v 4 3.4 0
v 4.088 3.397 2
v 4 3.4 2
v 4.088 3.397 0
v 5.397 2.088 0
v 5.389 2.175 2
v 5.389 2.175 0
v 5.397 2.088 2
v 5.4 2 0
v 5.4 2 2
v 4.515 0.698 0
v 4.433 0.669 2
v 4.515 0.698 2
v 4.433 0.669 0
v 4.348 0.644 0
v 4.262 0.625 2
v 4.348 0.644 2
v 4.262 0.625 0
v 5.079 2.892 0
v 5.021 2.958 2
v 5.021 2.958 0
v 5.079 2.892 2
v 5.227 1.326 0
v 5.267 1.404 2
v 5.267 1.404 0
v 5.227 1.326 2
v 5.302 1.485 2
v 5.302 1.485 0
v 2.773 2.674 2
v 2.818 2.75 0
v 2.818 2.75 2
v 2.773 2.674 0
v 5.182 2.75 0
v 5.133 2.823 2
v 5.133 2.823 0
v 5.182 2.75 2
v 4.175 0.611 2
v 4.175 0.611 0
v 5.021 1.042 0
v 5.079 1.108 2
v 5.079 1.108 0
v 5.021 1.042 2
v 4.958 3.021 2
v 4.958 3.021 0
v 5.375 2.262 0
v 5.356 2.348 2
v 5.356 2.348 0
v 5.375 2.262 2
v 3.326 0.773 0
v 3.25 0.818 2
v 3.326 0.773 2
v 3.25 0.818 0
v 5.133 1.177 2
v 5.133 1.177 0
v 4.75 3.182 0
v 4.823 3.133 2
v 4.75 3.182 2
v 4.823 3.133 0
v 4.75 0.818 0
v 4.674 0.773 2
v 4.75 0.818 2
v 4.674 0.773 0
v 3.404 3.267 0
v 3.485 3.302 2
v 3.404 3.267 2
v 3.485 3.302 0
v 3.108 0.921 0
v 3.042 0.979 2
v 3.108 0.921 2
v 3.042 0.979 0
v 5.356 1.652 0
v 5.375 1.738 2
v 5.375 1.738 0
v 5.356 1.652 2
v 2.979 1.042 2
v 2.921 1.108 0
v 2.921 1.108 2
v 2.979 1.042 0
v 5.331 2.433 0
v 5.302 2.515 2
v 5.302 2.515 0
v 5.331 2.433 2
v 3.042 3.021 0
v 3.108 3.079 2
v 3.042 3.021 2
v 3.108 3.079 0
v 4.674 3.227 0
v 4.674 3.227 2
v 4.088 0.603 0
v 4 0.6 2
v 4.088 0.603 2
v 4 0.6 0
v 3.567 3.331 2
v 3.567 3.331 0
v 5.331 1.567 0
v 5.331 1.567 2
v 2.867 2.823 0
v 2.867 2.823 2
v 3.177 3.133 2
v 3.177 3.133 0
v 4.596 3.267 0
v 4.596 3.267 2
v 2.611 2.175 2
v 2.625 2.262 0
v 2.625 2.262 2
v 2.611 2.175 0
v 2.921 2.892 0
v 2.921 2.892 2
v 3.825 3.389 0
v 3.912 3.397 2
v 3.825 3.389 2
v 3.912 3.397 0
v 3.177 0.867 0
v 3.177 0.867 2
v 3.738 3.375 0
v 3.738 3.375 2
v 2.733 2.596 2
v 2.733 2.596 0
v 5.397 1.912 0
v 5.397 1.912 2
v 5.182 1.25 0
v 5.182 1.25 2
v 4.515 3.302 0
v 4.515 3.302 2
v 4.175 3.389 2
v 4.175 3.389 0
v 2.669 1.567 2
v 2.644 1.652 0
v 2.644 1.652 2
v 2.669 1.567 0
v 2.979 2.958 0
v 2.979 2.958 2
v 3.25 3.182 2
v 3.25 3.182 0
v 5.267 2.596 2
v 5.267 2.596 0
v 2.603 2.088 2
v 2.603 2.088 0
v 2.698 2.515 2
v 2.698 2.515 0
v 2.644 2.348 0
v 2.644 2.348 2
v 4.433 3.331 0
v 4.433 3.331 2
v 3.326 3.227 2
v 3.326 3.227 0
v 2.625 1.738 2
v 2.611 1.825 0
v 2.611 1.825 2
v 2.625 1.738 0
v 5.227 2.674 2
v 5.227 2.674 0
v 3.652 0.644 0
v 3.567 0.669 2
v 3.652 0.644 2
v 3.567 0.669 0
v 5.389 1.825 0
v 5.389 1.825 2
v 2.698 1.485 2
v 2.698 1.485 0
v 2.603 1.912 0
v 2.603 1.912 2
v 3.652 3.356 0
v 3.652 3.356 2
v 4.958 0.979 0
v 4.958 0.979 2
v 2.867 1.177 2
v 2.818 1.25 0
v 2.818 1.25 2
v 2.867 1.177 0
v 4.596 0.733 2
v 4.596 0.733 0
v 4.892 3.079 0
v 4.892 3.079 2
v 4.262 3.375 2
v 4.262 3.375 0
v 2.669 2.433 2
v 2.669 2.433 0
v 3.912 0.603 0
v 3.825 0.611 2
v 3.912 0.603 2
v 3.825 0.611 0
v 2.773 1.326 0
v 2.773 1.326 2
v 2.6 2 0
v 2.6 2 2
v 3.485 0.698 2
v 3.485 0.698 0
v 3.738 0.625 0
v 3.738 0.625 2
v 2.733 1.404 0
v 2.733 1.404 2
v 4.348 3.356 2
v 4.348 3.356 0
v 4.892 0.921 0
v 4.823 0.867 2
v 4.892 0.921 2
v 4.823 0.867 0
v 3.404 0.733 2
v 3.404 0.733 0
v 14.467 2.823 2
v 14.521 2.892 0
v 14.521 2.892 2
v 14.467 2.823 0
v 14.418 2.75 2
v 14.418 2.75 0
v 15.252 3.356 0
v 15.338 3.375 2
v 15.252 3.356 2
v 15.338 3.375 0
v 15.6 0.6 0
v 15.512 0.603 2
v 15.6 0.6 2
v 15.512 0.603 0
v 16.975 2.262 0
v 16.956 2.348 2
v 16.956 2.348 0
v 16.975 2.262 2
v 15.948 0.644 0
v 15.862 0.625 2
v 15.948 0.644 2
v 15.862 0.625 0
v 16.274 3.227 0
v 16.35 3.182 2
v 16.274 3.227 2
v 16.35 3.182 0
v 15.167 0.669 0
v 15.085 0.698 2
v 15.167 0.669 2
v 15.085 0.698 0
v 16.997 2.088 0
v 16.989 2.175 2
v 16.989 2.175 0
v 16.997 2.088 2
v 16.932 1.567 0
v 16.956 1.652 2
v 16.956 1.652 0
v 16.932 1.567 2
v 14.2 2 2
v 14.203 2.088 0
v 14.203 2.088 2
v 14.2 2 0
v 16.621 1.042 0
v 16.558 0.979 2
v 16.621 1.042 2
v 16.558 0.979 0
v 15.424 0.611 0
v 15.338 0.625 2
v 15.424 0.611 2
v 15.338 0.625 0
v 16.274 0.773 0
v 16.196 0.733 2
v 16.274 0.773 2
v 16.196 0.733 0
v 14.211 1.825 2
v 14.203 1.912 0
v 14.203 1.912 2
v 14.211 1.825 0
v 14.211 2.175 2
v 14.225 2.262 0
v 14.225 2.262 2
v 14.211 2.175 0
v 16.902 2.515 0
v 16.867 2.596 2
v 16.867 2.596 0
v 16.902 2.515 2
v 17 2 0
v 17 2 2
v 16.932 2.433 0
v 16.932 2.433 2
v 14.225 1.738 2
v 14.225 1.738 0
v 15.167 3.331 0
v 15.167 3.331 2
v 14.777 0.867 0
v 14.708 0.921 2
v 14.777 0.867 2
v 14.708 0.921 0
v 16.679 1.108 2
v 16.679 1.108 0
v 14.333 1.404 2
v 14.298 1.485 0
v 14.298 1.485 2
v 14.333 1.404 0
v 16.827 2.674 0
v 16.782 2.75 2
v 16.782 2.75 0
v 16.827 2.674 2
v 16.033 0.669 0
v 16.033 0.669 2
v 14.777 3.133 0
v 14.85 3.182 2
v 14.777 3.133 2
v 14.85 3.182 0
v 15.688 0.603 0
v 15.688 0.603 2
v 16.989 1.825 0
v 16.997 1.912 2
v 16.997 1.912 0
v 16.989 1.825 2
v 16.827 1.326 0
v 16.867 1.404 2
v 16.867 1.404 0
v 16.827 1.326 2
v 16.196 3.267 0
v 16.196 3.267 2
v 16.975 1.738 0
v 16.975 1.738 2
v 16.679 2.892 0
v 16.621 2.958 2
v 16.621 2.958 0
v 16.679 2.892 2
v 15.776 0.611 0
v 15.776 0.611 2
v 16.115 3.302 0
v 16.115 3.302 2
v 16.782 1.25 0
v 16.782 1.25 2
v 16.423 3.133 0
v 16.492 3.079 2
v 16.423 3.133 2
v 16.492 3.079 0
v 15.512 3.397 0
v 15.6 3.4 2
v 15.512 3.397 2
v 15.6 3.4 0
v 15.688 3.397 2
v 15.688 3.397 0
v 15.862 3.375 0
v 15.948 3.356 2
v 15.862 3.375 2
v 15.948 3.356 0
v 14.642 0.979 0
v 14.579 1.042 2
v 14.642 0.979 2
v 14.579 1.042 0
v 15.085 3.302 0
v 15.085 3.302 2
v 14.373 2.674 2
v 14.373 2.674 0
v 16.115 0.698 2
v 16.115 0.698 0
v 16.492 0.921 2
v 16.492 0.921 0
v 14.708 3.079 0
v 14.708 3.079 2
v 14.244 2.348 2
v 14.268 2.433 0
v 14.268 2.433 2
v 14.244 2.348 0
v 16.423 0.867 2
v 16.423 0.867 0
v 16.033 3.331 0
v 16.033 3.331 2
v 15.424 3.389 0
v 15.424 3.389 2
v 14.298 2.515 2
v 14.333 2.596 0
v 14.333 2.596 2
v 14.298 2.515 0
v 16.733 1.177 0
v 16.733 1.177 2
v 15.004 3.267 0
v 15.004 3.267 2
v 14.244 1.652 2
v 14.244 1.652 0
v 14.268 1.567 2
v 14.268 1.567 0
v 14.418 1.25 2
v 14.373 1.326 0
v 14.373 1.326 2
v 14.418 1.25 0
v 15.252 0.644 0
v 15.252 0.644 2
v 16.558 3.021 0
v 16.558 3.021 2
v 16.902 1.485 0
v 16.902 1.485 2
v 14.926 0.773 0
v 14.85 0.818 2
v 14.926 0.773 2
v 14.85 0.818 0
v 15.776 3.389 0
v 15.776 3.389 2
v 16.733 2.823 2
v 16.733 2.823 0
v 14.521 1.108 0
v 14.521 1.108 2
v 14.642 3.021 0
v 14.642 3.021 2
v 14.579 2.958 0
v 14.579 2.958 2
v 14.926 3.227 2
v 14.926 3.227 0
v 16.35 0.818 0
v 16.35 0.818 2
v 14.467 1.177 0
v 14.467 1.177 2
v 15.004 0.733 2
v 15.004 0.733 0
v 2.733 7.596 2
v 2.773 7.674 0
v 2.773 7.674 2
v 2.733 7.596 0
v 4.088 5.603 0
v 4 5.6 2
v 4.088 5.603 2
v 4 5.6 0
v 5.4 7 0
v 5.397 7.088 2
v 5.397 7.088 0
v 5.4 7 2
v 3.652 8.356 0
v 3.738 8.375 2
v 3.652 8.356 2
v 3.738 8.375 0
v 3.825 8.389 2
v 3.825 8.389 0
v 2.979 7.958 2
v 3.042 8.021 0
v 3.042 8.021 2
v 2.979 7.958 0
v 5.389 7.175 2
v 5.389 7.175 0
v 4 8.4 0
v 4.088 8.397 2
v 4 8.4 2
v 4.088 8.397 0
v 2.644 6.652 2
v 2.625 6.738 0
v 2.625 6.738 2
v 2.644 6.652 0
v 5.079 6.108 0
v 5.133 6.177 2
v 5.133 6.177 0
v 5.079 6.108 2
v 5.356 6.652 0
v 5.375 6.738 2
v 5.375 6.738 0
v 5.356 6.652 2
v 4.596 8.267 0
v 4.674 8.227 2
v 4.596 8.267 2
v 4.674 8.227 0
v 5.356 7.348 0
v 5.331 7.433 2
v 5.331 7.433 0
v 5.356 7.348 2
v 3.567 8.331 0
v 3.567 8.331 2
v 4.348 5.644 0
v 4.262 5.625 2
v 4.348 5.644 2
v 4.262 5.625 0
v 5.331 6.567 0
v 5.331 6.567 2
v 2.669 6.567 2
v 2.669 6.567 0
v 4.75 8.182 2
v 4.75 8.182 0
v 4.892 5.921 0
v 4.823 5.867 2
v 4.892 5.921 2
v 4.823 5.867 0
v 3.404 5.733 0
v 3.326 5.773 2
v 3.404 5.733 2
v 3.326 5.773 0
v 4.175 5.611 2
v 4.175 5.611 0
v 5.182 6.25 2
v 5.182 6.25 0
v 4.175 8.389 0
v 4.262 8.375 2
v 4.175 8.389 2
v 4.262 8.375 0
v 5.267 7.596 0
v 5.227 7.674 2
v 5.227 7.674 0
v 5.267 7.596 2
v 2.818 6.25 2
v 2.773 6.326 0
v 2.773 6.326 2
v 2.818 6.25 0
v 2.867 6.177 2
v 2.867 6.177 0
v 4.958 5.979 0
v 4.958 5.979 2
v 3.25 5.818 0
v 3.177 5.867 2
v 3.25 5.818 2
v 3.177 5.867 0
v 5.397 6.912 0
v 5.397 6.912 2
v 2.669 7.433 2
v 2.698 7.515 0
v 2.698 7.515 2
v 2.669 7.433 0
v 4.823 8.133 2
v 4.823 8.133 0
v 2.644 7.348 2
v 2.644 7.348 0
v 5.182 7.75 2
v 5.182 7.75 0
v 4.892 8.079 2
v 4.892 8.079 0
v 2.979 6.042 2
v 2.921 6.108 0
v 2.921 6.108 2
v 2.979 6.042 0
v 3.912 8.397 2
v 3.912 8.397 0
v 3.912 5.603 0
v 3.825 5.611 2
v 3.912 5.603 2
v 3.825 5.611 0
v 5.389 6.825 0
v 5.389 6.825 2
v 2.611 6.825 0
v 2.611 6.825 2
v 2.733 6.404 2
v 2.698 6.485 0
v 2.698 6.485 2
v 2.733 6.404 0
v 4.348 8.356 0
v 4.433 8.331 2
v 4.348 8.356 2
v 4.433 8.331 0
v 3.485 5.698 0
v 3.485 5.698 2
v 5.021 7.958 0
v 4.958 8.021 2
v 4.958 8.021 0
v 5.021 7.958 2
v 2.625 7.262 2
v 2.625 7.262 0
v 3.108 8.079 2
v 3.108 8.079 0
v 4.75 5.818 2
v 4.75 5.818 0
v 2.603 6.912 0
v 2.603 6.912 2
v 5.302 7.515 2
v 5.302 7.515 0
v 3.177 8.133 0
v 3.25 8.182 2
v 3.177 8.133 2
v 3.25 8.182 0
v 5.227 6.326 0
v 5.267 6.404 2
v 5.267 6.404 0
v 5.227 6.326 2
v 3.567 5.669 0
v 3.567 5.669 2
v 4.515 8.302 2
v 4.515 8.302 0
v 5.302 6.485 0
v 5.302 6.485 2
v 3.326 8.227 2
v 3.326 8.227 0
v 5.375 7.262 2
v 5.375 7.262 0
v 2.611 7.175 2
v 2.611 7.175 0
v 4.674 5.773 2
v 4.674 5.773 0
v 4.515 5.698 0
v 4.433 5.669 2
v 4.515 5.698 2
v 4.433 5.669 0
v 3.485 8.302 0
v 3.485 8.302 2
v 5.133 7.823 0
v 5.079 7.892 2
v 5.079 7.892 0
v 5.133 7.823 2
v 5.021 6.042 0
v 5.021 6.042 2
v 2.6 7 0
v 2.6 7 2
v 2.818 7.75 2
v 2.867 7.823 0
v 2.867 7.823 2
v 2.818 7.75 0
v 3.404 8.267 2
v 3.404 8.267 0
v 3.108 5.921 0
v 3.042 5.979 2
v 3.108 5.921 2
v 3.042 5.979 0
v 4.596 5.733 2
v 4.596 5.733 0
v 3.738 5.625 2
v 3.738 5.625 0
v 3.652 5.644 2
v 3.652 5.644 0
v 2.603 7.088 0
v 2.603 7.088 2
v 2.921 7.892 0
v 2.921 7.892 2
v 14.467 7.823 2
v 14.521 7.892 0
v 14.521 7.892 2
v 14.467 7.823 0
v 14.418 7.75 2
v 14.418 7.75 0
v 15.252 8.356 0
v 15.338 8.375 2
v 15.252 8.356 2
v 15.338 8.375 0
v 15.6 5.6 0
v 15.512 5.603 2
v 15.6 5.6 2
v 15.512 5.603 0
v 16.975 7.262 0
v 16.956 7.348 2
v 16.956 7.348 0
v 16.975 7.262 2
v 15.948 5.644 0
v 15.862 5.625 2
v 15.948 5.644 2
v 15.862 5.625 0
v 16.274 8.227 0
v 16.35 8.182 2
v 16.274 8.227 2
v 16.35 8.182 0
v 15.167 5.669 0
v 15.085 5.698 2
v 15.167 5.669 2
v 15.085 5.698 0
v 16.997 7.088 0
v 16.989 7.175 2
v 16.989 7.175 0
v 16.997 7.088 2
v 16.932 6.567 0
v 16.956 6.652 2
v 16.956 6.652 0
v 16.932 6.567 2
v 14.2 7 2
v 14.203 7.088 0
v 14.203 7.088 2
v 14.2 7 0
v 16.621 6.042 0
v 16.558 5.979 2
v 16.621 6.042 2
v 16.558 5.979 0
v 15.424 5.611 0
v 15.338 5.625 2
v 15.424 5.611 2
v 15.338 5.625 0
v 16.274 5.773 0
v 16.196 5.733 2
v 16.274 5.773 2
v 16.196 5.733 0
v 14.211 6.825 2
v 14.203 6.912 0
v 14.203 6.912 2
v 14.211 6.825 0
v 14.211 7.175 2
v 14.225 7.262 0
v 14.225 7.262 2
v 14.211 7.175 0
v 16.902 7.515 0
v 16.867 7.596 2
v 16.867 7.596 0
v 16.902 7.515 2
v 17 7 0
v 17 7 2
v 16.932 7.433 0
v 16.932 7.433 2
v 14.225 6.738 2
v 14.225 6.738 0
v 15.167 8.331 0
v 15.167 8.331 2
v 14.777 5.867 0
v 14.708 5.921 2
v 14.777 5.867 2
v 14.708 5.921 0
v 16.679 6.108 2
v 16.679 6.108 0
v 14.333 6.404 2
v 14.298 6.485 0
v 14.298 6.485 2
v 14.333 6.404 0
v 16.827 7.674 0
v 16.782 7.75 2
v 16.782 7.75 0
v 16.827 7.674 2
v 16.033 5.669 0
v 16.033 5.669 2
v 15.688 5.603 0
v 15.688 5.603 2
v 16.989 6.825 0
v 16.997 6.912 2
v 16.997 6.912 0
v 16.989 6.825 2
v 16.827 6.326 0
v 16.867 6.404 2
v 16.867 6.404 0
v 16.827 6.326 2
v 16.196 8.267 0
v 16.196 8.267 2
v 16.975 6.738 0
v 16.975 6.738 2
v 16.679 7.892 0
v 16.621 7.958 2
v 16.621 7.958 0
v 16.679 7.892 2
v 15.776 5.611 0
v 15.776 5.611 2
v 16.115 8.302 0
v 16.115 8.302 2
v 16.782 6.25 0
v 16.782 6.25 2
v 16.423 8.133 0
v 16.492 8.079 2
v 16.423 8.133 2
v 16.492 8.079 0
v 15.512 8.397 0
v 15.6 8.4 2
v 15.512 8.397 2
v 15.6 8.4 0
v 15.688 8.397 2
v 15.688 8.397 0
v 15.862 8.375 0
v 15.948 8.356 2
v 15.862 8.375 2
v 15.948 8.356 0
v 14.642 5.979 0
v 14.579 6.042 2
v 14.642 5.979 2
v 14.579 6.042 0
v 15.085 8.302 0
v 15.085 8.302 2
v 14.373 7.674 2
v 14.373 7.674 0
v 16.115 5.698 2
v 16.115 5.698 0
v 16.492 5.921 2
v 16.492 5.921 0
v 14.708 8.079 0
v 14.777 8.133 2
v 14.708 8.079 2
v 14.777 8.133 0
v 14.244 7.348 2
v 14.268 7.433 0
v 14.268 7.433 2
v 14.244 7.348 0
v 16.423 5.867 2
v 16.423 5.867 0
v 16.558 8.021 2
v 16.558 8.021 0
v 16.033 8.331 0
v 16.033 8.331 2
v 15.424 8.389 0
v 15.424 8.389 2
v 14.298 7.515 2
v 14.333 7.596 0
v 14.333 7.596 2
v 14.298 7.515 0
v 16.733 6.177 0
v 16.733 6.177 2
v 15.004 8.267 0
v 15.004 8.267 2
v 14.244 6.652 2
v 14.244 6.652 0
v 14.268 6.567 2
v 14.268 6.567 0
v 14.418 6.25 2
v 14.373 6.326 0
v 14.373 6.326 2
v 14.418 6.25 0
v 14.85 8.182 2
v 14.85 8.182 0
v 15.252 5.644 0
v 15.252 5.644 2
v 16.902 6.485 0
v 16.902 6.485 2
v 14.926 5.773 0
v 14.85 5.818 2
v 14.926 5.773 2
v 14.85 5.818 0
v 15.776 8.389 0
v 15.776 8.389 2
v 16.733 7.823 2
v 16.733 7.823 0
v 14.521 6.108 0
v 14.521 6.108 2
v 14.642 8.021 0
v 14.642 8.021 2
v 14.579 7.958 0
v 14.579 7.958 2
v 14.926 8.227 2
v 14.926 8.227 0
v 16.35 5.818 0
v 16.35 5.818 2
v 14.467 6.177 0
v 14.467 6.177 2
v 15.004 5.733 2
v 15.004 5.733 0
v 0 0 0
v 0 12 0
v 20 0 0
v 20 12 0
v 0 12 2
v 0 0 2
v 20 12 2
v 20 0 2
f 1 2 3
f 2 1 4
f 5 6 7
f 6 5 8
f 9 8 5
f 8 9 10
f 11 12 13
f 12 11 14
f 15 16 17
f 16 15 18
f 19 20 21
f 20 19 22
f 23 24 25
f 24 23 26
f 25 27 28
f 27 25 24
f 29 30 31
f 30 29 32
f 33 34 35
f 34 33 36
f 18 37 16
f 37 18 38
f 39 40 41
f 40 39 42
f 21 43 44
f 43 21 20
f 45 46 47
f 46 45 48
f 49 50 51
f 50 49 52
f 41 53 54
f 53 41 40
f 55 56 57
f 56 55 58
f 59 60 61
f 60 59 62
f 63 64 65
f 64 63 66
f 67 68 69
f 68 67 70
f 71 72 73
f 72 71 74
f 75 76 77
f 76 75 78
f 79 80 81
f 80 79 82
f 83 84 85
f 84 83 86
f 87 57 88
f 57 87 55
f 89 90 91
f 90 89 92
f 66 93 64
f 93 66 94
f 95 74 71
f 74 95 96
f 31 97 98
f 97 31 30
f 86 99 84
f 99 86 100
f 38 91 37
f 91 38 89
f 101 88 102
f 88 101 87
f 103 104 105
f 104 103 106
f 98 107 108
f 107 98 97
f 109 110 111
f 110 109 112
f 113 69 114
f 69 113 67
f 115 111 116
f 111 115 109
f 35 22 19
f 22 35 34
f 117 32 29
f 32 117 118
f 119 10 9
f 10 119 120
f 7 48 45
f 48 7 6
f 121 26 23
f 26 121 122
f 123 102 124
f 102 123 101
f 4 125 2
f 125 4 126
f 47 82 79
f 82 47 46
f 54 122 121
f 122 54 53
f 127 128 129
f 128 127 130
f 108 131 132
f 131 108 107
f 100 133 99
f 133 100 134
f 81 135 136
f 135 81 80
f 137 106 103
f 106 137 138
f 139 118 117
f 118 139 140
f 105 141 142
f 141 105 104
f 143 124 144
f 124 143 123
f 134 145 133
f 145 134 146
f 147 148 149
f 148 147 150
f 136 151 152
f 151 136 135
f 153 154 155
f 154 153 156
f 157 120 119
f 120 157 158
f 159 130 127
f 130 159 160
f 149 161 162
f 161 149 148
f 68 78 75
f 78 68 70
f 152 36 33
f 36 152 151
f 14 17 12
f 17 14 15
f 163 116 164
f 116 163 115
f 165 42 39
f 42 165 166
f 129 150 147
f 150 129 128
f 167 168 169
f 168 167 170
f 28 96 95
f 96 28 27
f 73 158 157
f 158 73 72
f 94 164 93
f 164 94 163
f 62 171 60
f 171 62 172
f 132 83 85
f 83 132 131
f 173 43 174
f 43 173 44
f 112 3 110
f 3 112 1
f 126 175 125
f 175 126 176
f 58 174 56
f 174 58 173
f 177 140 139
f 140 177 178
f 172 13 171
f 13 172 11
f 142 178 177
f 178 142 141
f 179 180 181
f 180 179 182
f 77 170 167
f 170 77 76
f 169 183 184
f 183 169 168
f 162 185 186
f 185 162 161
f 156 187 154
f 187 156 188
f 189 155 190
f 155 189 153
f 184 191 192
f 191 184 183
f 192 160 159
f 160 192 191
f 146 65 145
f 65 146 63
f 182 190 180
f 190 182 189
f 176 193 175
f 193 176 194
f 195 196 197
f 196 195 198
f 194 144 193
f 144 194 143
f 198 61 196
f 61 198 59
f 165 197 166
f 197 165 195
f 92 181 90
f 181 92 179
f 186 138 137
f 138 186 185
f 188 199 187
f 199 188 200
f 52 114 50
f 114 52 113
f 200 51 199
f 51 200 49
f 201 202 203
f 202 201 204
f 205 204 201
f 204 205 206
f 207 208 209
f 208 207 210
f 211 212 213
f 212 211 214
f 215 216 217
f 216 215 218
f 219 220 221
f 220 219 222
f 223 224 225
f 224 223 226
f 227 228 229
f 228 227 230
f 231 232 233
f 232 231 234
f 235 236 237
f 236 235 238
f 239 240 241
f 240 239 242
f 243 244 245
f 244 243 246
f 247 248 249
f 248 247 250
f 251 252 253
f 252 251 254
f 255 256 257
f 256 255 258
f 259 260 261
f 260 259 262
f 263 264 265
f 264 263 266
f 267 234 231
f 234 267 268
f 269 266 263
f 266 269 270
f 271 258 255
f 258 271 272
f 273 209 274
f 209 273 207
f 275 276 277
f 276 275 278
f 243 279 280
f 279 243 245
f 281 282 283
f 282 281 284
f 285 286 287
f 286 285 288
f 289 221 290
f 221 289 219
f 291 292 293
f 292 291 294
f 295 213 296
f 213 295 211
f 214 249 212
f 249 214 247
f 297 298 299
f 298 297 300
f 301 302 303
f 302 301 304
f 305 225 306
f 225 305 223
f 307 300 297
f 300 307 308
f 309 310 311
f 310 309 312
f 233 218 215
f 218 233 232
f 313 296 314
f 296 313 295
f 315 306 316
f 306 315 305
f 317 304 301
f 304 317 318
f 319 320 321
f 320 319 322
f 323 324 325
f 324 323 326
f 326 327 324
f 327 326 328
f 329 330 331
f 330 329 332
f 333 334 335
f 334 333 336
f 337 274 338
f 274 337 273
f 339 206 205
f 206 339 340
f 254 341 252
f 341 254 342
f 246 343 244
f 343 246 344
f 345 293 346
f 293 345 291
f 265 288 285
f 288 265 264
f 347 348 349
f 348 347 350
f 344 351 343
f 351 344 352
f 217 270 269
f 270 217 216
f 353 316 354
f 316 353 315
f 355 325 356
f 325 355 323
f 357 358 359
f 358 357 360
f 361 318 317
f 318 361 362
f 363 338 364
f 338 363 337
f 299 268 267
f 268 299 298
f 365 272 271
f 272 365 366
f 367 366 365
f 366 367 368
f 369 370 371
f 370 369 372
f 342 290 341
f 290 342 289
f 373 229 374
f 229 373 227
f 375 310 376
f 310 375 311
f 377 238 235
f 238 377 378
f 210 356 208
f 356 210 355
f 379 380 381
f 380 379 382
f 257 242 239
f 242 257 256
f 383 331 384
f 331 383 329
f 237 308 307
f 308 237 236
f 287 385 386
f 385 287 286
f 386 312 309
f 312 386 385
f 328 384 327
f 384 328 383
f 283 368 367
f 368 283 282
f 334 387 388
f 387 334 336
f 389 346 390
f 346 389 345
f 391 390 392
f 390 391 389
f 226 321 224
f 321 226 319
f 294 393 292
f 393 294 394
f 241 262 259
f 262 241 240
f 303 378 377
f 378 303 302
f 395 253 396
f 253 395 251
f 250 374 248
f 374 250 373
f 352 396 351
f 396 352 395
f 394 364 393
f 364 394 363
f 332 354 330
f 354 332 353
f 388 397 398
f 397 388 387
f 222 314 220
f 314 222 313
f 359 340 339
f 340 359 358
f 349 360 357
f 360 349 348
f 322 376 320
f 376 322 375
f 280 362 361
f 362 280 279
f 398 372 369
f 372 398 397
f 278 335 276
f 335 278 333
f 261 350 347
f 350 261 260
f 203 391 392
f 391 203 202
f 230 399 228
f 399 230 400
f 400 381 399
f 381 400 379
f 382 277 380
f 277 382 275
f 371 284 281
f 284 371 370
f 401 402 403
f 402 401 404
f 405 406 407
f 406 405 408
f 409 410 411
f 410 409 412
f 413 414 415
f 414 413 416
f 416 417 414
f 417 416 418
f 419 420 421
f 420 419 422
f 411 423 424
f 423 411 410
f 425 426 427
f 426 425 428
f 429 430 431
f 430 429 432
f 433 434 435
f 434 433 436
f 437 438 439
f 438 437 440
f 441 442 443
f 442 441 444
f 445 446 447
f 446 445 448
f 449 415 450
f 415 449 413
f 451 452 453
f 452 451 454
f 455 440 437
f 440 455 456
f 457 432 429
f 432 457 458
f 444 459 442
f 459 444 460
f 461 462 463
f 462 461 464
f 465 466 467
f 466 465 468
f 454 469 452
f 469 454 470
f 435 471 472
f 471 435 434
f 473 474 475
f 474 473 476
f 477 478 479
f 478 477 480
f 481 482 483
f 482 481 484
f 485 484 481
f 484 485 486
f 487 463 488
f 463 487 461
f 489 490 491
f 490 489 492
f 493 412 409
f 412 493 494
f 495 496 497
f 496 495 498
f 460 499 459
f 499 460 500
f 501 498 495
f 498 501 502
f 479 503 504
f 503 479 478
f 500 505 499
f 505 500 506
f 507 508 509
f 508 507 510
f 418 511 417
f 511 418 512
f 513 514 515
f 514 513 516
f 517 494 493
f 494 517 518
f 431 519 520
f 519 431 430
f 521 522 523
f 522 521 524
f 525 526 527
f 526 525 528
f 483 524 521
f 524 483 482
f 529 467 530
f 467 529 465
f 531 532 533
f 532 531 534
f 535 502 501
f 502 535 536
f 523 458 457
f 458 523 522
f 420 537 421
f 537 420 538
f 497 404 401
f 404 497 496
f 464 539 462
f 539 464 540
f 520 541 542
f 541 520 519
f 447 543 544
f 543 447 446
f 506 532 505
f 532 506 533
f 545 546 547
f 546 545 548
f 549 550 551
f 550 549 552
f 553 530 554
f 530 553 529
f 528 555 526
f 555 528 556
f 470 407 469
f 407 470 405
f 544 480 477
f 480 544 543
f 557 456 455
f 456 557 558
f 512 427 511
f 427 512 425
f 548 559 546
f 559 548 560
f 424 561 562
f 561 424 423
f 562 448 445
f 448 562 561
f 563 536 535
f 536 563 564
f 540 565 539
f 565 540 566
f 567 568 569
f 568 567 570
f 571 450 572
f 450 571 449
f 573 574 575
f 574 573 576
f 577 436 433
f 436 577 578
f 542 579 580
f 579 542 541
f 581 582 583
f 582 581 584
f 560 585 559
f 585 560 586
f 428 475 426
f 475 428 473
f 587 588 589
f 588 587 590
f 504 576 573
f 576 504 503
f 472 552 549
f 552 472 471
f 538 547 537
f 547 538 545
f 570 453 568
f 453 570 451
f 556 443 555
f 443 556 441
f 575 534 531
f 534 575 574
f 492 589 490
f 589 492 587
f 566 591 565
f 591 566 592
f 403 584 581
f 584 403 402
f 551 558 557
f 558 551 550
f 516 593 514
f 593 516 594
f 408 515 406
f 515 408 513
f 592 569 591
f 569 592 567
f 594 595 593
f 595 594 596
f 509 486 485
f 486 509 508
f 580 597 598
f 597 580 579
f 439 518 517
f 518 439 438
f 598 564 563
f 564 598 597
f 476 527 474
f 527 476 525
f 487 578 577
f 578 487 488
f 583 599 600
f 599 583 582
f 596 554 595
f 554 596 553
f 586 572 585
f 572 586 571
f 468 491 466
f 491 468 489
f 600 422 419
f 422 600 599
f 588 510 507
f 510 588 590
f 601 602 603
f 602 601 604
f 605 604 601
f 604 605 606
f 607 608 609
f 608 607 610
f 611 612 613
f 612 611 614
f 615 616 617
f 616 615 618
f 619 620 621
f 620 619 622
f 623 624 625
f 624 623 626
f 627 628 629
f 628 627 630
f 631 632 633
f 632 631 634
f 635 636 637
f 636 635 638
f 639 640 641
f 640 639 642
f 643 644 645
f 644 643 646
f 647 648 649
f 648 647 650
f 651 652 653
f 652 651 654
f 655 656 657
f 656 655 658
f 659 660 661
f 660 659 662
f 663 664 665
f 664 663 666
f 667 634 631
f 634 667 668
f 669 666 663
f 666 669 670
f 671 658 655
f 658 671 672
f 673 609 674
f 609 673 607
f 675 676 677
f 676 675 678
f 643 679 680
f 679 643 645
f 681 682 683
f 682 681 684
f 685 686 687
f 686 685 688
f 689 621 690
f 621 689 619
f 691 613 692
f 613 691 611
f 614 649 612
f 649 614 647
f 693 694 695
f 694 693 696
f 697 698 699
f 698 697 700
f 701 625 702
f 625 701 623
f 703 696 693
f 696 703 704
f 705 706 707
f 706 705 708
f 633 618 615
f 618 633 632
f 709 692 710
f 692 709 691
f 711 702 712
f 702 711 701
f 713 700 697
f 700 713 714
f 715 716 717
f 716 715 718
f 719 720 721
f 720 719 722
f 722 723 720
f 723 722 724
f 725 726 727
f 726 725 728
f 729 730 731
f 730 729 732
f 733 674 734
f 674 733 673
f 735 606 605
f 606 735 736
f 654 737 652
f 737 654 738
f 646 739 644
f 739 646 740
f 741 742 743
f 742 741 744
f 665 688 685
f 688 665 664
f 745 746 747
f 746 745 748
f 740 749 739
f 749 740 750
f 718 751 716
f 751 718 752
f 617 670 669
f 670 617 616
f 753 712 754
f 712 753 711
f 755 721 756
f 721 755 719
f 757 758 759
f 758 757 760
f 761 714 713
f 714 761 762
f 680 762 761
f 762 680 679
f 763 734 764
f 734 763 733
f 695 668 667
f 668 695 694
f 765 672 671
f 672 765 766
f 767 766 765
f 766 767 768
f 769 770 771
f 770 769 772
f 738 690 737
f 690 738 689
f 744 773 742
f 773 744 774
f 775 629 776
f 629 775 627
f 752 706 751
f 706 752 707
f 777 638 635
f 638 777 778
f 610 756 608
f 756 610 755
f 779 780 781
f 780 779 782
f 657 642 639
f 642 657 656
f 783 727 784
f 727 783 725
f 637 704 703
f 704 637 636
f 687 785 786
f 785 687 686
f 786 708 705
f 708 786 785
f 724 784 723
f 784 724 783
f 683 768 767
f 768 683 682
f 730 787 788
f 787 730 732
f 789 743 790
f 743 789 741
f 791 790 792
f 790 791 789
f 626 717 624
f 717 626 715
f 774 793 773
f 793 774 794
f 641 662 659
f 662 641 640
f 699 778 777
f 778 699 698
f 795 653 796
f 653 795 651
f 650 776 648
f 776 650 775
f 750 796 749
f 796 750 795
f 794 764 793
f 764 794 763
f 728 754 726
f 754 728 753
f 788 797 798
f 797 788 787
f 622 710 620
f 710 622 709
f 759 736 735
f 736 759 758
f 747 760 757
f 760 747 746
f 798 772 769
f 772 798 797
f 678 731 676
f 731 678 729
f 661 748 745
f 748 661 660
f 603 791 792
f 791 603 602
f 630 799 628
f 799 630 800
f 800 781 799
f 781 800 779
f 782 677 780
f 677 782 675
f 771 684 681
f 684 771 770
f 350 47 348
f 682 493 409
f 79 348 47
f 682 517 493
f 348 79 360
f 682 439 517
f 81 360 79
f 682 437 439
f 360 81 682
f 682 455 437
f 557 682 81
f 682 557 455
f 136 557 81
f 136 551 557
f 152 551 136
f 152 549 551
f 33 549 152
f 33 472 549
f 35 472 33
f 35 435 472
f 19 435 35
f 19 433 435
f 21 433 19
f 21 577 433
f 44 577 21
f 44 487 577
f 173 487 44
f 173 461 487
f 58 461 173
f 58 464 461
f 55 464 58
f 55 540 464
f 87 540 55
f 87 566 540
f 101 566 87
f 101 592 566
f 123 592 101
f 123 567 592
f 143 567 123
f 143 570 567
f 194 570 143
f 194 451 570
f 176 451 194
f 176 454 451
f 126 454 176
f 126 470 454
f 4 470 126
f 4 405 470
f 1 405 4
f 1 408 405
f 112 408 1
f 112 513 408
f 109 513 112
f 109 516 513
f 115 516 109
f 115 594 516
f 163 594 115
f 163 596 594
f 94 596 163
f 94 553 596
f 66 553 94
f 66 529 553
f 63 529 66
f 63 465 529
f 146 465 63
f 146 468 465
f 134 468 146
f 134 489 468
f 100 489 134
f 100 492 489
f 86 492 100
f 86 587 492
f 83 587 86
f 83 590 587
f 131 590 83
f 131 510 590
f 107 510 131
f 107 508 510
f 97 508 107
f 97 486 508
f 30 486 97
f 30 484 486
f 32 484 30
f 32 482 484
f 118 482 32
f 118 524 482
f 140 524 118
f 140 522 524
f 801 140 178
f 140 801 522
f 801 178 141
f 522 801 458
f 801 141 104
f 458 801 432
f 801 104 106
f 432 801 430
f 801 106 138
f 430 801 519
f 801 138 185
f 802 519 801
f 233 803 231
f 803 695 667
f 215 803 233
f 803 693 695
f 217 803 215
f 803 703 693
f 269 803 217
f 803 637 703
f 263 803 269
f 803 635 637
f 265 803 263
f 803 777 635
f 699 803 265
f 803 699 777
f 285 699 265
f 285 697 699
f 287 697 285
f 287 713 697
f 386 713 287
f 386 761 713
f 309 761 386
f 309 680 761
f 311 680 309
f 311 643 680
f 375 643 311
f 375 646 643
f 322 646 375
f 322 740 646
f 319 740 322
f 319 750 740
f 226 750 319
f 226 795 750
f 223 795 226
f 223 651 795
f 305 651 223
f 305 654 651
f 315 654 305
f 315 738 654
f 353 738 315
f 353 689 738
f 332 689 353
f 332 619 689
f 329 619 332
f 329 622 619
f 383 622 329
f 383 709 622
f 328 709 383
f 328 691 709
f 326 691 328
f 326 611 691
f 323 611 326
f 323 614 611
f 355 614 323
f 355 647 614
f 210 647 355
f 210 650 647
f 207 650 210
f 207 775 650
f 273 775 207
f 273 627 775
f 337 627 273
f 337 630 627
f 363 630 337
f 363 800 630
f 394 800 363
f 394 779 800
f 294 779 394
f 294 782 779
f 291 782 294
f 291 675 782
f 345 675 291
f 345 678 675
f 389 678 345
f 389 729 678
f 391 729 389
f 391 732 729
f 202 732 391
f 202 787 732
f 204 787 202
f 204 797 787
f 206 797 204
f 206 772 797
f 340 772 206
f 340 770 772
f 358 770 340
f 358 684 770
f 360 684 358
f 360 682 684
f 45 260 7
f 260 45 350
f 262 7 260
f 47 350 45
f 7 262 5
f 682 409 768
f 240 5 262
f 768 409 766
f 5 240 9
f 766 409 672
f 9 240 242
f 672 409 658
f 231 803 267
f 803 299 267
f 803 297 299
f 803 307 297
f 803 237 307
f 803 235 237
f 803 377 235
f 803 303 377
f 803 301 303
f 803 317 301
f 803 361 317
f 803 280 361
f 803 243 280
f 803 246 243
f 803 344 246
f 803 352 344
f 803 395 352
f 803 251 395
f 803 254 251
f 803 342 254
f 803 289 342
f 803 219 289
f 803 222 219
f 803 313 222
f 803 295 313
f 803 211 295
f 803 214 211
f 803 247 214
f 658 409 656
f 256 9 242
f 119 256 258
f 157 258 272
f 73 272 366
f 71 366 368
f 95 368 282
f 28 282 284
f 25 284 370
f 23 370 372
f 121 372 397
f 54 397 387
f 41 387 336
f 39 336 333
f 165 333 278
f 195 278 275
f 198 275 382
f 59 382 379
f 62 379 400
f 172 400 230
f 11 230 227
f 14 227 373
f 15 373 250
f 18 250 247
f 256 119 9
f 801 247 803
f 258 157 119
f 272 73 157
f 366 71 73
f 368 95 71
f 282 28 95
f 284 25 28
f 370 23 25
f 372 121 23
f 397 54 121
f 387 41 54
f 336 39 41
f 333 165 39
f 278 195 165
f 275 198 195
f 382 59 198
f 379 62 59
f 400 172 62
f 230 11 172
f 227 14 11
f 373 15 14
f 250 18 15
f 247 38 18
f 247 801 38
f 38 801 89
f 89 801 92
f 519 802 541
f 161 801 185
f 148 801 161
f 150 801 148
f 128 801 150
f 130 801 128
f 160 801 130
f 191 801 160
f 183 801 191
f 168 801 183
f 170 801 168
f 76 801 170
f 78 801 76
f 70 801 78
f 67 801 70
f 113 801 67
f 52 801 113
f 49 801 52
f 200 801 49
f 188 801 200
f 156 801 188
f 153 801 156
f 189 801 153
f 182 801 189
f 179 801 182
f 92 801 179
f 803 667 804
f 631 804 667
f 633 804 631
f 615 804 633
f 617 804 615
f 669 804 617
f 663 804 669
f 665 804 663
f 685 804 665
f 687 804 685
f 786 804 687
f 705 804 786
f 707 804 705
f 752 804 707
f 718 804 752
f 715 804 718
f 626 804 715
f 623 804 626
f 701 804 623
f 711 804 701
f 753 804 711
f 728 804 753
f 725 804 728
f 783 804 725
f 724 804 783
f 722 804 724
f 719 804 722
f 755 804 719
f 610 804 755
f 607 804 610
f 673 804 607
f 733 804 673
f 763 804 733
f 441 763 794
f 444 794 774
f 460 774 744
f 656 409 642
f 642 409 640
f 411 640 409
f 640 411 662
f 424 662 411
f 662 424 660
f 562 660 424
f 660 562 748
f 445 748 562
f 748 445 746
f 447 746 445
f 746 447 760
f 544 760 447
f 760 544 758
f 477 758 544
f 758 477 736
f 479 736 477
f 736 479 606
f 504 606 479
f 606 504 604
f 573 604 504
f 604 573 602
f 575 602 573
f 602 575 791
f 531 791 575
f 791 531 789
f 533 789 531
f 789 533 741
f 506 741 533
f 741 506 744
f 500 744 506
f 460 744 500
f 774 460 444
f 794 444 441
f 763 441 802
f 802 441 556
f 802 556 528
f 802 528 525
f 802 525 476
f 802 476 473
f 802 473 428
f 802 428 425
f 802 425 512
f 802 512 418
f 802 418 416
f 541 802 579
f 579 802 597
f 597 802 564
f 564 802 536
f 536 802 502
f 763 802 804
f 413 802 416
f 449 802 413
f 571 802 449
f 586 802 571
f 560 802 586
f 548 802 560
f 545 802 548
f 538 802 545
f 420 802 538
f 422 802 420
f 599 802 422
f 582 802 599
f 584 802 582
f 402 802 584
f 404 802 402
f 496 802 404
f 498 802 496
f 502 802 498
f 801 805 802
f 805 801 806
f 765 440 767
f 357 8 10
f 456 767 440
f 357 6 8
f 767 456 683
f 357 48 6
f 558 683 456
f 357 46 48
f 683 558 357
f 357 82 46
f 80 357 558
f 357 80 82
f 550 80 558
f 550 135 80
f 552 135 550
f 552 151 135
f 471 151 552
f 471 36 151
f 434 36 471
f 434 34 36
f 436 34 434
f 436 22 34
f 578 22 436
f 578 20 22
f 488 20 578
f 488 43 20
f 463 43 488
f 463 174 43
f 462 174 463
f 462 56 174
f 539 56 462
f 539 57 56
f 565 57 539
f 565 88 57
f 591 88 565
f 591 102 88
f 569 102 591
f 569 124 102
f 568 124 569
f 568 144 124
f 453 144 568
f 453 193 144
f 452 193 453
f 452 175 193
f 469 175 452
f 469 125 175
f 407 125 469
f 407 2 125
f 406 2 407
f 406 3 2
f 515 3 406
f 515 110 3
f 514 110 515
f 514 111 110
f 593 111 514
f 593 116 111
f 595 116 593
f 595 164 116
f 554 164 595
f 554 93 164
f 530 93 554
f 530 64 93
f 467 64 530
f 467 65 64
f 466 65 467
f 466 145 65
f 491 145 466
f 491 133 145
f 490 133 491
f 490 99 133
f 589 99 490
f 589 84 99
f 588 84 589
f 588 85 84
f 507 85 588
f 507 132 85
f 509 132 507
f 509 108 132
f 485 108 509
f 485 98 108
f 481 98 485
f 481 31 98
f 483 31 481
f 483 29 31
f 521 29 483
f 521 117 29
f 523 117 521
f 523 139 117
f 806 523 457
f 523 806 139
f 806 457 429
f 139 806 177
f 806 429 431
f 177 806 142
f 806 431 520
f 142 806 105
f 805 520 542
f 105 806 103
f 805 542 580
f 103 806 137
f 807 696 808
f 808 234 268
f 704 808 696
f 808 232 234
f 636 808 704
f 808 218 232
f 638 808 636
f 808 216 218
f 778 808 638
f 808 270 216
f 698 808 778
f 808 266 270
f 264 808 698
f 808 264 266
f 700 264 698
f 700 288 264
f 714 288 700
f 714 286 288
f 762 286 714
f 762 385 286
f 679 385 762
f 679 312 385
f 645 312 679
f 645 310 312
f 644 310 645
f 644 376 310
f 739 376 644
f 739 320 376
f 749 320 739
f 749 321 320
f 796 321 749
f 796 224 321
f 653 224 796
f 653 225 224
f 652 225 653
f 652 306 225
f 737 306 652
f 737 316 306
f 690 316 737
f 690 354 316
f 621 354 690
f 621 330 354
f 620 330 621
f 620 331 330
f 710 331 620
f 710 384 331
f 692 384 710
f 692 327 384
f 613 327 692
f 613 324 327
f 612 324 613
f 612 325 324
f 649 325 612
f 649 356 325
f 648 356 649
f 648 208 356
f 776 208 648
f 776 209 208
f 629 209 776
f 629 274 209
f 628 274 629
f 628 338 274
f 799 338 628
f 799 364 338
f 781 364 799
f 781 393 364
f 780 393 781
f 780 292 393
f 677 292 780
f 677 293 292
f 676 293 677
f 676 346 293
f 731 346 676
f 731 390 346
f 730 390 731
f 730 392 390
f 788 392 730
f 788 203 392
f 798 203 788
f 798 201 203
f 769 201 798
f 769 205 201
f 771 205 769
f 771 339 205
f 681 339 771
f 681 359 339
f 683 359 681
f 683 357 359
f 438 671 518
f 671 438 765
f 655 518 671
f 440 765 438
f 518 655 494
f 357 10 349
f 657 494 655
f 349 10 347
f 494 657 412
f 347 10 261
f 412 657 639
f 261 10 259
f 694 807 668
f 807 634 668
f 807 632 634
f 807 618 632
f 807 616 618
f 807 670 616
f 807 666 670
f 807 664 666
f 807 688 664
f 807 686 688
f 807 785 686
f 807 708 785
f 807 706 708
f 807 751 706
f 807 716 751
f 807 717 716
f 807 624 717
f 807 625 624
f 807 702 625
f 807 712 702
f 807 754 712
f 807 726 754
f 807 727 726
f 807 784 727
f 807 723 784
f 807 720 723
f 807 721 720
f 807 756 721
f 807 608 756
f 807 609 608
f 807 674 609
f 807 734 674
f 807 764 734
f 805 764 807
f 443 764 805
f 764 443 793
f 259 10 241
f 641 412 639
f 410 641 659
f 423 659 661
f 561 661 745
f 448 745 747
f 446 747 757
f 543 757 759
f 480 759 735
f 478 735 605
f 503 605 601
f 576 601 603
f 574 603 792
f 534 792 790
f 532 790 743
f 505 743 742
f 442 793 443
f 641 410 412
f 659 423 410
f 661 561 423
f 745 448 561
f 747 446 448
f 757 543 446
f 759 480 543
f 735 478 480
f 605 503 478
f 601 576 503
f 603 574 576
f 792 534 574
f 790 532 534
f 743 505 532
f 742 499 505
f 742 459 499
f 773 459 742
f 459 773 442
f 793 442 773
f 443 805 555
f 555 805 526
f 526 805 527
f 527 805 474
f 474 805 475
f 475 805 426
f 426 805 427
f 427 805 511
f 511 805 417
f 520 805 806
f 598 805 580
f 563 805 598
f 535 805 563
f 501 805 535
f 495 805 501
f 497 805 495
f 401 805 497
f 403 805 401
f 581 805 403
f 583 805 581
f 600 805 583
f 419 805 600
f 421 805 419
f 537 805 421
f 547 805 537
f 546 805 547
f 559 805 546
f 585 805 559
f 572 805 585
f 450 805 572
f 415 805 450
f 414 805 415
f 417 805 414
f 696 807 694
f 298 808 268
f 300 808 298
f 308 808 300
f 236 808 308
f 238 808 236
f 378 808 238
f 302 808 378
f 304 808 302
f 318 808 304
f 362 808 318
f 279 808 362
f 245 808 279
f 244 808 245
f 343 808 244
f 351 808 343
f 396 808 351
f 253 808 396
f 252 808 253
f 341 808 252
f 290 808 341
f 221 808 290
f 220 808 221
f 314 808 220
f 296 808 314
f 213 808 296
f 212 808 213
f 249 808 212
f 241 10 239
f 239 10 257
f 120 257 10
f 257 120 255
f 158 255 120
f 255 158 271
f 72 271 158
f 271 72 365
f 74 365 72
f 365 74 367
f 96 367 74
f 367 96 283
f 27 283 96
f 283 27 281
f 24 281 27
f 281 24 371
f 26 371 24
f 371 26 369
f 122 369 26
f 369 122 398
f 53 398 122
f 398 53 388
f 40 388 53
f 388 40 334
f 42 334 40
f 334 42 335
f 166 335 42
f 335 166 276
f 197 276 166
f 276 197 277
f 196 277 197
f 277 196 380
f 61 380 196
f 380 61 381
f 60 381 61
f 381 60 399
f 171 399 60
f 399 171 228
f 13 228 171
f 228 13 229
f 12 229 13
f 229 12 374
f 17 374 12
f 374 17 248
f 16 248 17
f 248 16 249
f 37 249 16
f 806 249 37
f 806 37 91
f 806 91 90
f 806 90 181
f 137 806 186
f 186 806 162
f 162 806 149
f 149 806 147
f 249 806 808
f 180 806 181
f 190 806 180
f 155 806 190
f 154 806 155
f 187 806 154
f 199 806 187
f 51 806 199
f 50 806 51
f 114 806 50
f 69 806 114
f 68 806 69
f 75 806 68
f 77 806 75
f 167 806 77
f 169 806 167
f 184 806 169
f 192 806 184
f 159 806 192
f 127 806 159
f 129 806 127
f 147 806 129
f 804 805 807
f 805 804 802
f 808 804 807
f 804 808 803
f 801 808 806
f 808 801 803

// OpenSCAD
// Ender 2 Pro X-Axis Mounting Carriage Plate
// High quality settings
$fn = 100;

// include <Chamfer.scad>;

// Variables
thickness = 2.00;
plate_height = 12.00;
plate_width = 20.00;
m3_hole_diameter = 2.8;
m3_hole_height = 10;
standoff_diameter = 4.15;

module main_mounting_plate() {
  // Base plate
  translate([0, 0, 0])
  linear_extrude(height = thickness)
  //chamferCube([plate_width, plate_height, thickness], 2);
  hull() {
    square([plate_width, plate_height]);
  }
}

module m3_stand_off_holes() {
  translate([4.00, plate_height - 10.00, -5.5]) {
    cylinder(d = m3_hole_diameter, h = m3_hole_height);
    translate([11.60, 0, 0]) {
      cylinder(d = m3_hole_diameter, h = m3_hole_height);
    }
  }
}

module m3_holes() {
  union() {
    m3_stand_off_holes();

    translate([4.00, plate_height - 5.00, -5.5]) {
      cylinder(d = m3_hole_diameter, h = m3_hole_height);
      translate([11.60, 0, 0]) {
        cylinder(d = m3_hole_diameter, h = m3_hole_height);
      }
    }
  }
}

// Main assembly
module main_assembly() {
  // Final assembly
  difference() {
    union() {
      main_mounting_plate();
    }
    m3_holes();
  }
}

main_assembly();
